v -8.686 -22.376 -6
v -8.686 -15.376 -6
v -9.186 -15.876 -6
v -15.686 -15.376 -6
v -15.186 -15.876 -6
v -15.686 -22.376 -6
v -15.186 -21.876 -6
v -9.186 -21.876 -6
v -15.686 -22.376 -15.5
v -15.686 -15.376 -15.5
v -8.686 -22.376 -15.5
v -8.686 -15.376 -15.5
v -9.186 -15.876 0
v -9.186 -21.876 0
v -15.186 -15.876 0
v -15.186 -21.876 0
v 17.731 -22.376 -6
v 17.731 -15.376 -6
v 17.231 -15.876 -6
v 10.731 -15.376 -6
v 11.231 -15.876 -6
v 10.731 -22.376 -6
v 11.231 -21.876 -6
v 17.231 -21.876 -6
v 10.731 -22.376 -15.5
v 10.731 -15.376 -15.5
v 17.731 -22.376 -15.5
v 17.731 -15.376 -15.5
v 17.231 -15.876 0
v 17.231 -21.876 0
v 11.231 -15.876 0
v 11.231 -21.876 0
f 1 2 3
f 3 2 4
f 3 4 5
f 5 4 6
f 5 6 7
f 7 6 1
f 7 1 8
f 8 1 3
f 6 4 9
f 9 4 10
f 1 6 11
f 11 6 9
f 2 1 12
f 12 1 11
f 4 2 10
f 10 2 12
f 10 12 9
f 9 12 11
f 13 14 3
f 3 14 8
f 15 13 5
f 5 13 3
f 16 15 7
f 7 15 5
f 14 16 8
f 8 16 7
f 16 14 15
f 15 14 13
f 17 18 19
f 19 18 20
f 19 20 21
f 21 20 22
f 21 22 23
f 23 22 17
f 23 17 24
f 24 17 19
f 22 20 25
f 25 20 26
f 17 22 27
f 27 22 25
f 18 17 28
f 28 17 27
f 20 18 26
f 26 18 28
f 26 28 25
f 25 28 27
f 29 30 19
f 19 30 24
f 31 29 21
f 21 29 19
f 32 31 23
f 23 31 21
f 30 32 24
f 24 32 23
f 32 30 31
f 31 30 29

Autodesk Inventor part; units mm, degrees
ref_plane "YZ Plane" through (0, 0, 0) normal (1, 0, 0) x (0, 1, 0)
ref_plane "XZ Plane" through (0, 0, 0) normal (0, 1, 0) x (-1, 0, 0)
ref_plane "XY Plane" through (0, 0, 0) normal (0, 0, 1) x (1, 0, 0)
sketch "Skizze1" plane through (0, 0, 0) normal (0, 0, 1) x (1, 0, 0)
  line L0 (-15.686, -15.3764) -> (-8.686, -15.3764)
  line L1 (-8.686, -15.3764) -> (-8.686, -22.3764)
  line L2 (-8.686, -22.3764) -> (-15.686, -22.3764)
  line L3 (-15.686, -22.3764) -> (-15.686, -15.3764)
  line L4 (-15.686, -15.3764) -> (-8.686, -22.3764) construction
  line L5 (-8.686, -15.3764) -> (-15.686, -22.3764) construction
  line L6 (-16.686, -14.3764) -> (-7.686, -14.3764)
  line L7 (-7.686, -14.3764) -> (-7.686, -23.3764)
  line L8 (-7.686, -23.3764) -> (-16.686, -23.3764)
  line L9 (-16.686, -23.3764) -> (-16.686, -14.3764)
  line L10 (-16.686, -14.3764) -> (-7.686, -23.3764) construction
  line L11 (-7.686, -14.3764) -> (-16.686, -23.3764) construction
  line L12 (-15.186, -15.8764) -> (-9.186, -15.8764)
  line L13 (-9.186, -15.8764) -> (-9.186, -21.8764)
  line L14 (-9.186, -21.8764) -> (-15.186, -21.8764)
  line L15 (-15.186, -21.8764) -> (-15.186, -15.8764)
  line L16 (-15.186, -15.8764) -> (-9.186, -21.8764) construction
  line L17 (-9.186, -15.8764) -> (-15.186, -21.8764) construction
  line L18 (11.2313, -15.8764) -> (17.2313, -15.8764)
  line L19 (17.2313, -15.8764) -> (17.2313, -21.8764)
  line L20 (17.2313, -21.8764) -> (11.2313, -21.8764)
  line L21 (11.2313, -21.8764) -> (11.2313, -15.8764)
  line L22 (11.2313, -15.8764) -> (17.2313, -21.8764) construction
  line L23 (17.2313, -15.8764) -> (11.2313, -21.8764) construction
  line L24 (10.7313, -15.3764) -> (17.7313, -15.3764)
  line L25 (17.7313, -15.3764) -> (17.7313, -22.3764)
  line L26 (17.7313, -22.3764) -> (10.7313, -22.3764)
  line L27 (10.7313, -22.3764) -> (10.7313, -15.3764)
  line L28 (10.7313, -15.3764) -> (17.7313, -22.3764) construction
  line L29 (17.7313, -15.3764) -> (10.7313, -22.3764) construction
  line L30 (9.7313, -14.3764) -> (18.7313, -14.3764)
  line L31 (18.7313, -14.3764) -> (18.7313, -23.3764)
  line L32 (18.7313, -23.3764) -> (9.7313, -23.3764)
  line L33 (9.7313, -23.3764) -> (9.7313, -14.3764)
  line L34 (9.7313, -14.3764) -> (18.7313, -23.3764) construction
  line L35 (18.7313, -14.3764) -> (9.7313, -23.3764) construction
  point P0 (0, 0)
  point P1 (-37.0028, -11.3826)
  point P2 (-12.186, -18.8764)
  point P3 (-12.186, -18.8764)
  point P4 (-12.186, -18.8764)
  point P5 (14.2313, -18.8764)
  point P6 (14.2313, -18.8764)
  point P7 (14.2313, -18.8764)
  dimension "d0" = 7
  dimension "d1" = 7
  dimension "d2" = 9
  dimension "d3" = 9
  dimension "d4" = 6
  dimension "d5" = 6
  dimension "d6" = 6
  dimension "d7" = 6
  dimension "d8" = 7
  dimension "d9" = 7
  dimension "d10" = 9
  dimension "d11" = 9
extrude "Extrusion1" add sketch "Skizze1" against normal blind 6 contours L12 L13 L14 L15 | L18 L19 L20 L21
sketch "Skizze2" plane through (0, 0, -6) normal (0, 0, -1) x (-1, 0, 0)
  line L0 (9.186, -21.8764) -> (15.186, -21.8764) projected
  line L1 (15.186, -15.8764) -> (9.186, -15.8764) projected
  line L2 (15.186, -21.8764) -> (9.186, -21.8764)
  line L3 (9.186, -21.8764) -> (9.186, -15.8764)
  line L4 (9.186, -15.8764) -> (15.186, -15.8764)
  line L5 (15.186, -15.8764) -> (15.186, -21.8764)
  line L6 (-11.2313, -21.8764) -> (-17.2313, -21.8764) projected
  line L7 (-17.2313, -21.8764) -> (-11.2313, -21.8764)
  line L8 (-11.2313, -21.8764) -> (-11.2313, -15.8764)
  line L9 (-11.2313, -15.8764) -> (-17.2313, -15.8764)
  line L10 (-17.2313, -15.8764) -> (-17.2313, -21.8764)
  line L11 (15.186, -15.8764) -> (12.186, -15.8764)
  line L12 (12.186, -15.8764) -> (12.186, -18.8764)
  line L13 (-11.2313, -15.8764) -> (-14.2313, -15.8764)
  line L14 (-14.2313, -15.8764) -> (-14.2313, -18.8764)
  line L15 (15.686, -22.3764) -> (8.686, -22.3764)
  line L16 (8.686, -22.3764) -> (8.686, -15.3764)
  line L17 (8.686, -15.3764) -> (15.686, -15.3764)
  line L18 (15.686, -15.3764) -> (15.686, -22.3764)
  line L19 (15.686, -22.3764) -> (8.686, -15.3764) construction
  line L20 (8.686, -22.3764) -> (15.686, -15.3764) construction
  line L21 (-10.7313, -22.3764) -> (-17.7313, -22.3764)
  line L22 (-17.7313, -22.3764) -> (-17.7313, -15.3764)
  line L23 (-17.7313, -15.3764) -> (-10.7313, -15.3764)
  line L24 (-10.7313, -15.3764) -> (-10.7313, -22.3764)
  line L25 (-10.7313, -22.3764) -> (-17.7313, -15.3764) construction
  line L26 (-17.7313, -22.3764) -> (-10.7313, -15.3764) construction
  point P0 (0, 0)
  dimension "d15" = 3
  dimension "d16" = 3
  dimension "d17" = 3
  dimension "d18" = 7
  dimension "d19" = 7
  dimension "d20" = 7
  dimension "d21" = 7
extrude "Extrusion2" add sketch "Skizze2" along normal blind 9.5 contours L3 L1 L5 L0 | L6 L10 L9 L8 | L15 L16 L17 L18 | L21 L22 L23 L24
properties part number "Taster"
